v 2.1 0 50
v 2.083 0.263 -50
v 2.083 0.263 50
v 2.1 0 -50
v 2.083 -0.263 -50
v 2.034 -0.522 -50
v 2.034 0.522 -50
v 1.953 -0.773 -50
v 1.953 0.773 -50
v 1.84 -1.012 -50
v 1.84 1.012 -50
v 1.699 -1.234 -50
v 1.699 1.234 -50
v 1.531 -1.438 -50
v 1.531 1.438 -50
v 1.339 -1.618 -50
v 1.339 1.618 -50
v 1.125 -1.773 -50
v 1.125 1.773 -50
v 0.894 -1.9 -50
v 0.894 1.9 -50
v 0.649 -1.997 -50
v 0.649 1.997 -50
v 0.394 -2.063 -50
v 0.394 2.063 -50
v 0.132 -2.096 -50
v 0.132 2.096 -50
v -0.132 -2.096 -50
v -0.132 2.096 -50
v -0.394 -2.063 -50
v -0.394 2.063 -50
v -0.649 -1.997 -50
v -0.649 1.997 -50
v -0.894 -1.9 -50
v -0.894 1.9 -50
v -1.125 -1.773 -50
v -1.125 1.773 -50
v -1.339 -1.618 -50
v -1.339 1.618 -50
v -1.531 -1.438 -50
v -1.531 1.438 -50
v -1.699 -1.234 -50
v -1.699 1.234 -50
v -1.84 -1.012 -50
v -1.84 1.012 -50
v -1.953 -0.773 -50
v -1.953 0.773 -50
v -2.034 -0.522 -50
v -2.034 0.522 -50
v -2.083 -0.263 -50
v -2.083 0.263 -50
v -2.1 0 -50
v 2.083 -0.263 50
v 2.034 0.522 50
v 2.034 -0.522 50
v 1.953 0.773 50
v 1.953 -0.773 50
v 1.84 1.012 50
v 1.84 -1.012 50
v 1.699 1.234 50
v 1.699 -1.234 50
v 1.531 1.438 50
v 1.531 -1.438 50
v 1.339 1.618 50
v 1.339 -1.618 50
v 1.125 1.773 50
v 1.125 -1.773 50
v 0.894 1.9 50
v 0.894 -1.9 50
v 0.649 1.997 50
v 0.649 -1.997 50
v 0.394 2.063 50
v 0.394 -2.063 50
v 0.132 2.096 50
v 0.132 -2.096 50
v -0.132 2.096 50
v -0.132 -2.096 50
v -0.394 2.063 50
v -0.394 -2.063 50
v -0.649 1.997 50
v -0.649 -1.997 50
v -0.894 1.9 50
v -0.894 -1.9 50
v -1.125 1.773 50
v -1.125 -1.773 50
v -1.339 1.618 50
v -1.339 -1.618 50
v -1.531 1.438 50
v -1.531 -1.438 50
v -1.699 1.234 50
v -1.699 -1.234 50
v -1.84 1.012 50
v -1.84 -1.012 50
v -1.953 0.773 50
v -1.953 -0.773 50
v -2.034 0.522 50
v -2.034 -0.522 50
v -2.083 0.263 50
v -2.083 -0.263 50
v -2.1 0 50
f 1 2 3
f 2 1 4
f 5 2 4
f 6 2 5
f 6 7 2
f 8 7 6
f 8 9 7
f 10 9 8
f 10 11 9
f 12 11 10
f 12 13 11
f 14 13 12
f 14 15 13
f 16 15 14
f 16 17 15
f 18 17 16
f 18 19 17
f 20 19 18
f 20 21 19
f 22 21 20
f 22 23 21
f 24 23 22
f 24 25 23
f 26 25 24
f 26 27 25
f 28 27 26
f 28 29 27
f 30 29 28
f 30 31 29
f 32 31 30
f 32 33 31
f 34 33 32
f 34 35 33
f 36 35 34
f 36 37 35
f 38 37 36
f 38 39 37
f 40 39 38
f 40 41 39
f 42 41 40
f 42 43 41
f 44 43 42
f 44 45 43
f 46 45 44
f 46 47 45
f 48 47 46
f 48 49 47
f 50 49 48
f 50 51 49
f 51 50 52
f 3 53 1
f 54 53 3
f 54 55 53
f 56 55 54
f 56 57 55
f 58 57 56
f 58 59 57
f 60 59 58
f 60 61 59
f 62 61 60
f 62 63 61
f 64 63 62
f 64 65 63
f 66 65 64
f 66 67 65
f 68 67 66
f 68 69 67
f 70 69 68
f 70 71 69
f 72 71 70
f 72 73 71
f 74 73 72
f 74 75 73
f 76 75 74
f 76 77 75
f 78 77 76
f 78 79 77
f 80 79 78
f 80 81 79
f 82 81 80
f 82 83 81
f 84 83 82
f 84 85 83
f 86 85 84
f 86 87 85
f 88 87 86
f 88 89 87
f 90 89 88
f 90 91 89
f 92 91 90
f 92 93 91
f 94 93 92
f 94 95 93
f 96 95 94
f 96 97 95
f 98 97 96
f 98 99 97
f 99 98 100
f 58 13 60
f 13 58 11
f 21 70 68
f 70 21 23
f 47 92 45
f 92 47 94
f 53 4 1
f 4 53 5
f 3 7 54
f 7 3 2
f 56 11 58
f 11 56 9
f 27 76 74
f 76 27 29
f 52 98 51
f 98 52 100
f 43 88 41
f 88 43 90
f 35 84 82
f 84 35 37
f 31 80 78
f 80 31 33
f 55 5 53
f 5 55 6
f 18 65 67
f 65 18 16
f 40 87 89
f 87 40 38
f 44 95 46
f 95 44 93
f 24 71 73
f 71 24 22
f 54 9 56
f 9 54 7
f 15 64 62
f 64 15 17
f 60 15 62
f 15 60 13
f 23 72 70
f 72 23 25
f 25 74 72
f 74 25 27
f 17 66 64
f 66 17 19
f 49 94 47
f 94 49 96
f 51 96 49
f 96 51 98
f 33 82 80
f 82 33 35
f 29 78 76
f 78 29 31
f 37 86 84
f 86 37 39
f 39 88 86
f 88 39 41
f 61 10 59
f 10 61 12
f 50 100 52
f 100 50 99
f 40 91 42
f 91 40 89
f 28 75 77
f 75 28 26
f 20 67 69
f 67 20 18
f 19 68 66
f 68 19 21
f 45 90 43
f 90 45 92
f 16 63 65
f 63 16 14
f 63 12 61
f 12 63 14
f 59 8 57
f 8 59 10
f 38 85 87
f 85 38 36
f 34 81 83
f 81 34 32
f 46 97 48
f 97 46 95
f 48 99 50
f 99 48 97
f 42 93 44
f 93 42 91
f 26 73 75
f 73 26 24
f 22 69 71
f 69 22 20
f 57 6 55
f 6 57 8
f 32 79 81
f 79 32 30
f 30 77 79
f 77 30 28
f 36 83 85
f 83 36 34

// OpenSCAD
$fn = 50;


difference() {
	union() {
		translate(v = [0, 0, -50.0000000000]) {
			cylinder(h = 100, r = 2.1000000000);
		}
	}
	union() {
		translate(v = [0, 0, -100.0000000000]) {
			cylinder(h = 200, r = 0);
		}
	}
}
